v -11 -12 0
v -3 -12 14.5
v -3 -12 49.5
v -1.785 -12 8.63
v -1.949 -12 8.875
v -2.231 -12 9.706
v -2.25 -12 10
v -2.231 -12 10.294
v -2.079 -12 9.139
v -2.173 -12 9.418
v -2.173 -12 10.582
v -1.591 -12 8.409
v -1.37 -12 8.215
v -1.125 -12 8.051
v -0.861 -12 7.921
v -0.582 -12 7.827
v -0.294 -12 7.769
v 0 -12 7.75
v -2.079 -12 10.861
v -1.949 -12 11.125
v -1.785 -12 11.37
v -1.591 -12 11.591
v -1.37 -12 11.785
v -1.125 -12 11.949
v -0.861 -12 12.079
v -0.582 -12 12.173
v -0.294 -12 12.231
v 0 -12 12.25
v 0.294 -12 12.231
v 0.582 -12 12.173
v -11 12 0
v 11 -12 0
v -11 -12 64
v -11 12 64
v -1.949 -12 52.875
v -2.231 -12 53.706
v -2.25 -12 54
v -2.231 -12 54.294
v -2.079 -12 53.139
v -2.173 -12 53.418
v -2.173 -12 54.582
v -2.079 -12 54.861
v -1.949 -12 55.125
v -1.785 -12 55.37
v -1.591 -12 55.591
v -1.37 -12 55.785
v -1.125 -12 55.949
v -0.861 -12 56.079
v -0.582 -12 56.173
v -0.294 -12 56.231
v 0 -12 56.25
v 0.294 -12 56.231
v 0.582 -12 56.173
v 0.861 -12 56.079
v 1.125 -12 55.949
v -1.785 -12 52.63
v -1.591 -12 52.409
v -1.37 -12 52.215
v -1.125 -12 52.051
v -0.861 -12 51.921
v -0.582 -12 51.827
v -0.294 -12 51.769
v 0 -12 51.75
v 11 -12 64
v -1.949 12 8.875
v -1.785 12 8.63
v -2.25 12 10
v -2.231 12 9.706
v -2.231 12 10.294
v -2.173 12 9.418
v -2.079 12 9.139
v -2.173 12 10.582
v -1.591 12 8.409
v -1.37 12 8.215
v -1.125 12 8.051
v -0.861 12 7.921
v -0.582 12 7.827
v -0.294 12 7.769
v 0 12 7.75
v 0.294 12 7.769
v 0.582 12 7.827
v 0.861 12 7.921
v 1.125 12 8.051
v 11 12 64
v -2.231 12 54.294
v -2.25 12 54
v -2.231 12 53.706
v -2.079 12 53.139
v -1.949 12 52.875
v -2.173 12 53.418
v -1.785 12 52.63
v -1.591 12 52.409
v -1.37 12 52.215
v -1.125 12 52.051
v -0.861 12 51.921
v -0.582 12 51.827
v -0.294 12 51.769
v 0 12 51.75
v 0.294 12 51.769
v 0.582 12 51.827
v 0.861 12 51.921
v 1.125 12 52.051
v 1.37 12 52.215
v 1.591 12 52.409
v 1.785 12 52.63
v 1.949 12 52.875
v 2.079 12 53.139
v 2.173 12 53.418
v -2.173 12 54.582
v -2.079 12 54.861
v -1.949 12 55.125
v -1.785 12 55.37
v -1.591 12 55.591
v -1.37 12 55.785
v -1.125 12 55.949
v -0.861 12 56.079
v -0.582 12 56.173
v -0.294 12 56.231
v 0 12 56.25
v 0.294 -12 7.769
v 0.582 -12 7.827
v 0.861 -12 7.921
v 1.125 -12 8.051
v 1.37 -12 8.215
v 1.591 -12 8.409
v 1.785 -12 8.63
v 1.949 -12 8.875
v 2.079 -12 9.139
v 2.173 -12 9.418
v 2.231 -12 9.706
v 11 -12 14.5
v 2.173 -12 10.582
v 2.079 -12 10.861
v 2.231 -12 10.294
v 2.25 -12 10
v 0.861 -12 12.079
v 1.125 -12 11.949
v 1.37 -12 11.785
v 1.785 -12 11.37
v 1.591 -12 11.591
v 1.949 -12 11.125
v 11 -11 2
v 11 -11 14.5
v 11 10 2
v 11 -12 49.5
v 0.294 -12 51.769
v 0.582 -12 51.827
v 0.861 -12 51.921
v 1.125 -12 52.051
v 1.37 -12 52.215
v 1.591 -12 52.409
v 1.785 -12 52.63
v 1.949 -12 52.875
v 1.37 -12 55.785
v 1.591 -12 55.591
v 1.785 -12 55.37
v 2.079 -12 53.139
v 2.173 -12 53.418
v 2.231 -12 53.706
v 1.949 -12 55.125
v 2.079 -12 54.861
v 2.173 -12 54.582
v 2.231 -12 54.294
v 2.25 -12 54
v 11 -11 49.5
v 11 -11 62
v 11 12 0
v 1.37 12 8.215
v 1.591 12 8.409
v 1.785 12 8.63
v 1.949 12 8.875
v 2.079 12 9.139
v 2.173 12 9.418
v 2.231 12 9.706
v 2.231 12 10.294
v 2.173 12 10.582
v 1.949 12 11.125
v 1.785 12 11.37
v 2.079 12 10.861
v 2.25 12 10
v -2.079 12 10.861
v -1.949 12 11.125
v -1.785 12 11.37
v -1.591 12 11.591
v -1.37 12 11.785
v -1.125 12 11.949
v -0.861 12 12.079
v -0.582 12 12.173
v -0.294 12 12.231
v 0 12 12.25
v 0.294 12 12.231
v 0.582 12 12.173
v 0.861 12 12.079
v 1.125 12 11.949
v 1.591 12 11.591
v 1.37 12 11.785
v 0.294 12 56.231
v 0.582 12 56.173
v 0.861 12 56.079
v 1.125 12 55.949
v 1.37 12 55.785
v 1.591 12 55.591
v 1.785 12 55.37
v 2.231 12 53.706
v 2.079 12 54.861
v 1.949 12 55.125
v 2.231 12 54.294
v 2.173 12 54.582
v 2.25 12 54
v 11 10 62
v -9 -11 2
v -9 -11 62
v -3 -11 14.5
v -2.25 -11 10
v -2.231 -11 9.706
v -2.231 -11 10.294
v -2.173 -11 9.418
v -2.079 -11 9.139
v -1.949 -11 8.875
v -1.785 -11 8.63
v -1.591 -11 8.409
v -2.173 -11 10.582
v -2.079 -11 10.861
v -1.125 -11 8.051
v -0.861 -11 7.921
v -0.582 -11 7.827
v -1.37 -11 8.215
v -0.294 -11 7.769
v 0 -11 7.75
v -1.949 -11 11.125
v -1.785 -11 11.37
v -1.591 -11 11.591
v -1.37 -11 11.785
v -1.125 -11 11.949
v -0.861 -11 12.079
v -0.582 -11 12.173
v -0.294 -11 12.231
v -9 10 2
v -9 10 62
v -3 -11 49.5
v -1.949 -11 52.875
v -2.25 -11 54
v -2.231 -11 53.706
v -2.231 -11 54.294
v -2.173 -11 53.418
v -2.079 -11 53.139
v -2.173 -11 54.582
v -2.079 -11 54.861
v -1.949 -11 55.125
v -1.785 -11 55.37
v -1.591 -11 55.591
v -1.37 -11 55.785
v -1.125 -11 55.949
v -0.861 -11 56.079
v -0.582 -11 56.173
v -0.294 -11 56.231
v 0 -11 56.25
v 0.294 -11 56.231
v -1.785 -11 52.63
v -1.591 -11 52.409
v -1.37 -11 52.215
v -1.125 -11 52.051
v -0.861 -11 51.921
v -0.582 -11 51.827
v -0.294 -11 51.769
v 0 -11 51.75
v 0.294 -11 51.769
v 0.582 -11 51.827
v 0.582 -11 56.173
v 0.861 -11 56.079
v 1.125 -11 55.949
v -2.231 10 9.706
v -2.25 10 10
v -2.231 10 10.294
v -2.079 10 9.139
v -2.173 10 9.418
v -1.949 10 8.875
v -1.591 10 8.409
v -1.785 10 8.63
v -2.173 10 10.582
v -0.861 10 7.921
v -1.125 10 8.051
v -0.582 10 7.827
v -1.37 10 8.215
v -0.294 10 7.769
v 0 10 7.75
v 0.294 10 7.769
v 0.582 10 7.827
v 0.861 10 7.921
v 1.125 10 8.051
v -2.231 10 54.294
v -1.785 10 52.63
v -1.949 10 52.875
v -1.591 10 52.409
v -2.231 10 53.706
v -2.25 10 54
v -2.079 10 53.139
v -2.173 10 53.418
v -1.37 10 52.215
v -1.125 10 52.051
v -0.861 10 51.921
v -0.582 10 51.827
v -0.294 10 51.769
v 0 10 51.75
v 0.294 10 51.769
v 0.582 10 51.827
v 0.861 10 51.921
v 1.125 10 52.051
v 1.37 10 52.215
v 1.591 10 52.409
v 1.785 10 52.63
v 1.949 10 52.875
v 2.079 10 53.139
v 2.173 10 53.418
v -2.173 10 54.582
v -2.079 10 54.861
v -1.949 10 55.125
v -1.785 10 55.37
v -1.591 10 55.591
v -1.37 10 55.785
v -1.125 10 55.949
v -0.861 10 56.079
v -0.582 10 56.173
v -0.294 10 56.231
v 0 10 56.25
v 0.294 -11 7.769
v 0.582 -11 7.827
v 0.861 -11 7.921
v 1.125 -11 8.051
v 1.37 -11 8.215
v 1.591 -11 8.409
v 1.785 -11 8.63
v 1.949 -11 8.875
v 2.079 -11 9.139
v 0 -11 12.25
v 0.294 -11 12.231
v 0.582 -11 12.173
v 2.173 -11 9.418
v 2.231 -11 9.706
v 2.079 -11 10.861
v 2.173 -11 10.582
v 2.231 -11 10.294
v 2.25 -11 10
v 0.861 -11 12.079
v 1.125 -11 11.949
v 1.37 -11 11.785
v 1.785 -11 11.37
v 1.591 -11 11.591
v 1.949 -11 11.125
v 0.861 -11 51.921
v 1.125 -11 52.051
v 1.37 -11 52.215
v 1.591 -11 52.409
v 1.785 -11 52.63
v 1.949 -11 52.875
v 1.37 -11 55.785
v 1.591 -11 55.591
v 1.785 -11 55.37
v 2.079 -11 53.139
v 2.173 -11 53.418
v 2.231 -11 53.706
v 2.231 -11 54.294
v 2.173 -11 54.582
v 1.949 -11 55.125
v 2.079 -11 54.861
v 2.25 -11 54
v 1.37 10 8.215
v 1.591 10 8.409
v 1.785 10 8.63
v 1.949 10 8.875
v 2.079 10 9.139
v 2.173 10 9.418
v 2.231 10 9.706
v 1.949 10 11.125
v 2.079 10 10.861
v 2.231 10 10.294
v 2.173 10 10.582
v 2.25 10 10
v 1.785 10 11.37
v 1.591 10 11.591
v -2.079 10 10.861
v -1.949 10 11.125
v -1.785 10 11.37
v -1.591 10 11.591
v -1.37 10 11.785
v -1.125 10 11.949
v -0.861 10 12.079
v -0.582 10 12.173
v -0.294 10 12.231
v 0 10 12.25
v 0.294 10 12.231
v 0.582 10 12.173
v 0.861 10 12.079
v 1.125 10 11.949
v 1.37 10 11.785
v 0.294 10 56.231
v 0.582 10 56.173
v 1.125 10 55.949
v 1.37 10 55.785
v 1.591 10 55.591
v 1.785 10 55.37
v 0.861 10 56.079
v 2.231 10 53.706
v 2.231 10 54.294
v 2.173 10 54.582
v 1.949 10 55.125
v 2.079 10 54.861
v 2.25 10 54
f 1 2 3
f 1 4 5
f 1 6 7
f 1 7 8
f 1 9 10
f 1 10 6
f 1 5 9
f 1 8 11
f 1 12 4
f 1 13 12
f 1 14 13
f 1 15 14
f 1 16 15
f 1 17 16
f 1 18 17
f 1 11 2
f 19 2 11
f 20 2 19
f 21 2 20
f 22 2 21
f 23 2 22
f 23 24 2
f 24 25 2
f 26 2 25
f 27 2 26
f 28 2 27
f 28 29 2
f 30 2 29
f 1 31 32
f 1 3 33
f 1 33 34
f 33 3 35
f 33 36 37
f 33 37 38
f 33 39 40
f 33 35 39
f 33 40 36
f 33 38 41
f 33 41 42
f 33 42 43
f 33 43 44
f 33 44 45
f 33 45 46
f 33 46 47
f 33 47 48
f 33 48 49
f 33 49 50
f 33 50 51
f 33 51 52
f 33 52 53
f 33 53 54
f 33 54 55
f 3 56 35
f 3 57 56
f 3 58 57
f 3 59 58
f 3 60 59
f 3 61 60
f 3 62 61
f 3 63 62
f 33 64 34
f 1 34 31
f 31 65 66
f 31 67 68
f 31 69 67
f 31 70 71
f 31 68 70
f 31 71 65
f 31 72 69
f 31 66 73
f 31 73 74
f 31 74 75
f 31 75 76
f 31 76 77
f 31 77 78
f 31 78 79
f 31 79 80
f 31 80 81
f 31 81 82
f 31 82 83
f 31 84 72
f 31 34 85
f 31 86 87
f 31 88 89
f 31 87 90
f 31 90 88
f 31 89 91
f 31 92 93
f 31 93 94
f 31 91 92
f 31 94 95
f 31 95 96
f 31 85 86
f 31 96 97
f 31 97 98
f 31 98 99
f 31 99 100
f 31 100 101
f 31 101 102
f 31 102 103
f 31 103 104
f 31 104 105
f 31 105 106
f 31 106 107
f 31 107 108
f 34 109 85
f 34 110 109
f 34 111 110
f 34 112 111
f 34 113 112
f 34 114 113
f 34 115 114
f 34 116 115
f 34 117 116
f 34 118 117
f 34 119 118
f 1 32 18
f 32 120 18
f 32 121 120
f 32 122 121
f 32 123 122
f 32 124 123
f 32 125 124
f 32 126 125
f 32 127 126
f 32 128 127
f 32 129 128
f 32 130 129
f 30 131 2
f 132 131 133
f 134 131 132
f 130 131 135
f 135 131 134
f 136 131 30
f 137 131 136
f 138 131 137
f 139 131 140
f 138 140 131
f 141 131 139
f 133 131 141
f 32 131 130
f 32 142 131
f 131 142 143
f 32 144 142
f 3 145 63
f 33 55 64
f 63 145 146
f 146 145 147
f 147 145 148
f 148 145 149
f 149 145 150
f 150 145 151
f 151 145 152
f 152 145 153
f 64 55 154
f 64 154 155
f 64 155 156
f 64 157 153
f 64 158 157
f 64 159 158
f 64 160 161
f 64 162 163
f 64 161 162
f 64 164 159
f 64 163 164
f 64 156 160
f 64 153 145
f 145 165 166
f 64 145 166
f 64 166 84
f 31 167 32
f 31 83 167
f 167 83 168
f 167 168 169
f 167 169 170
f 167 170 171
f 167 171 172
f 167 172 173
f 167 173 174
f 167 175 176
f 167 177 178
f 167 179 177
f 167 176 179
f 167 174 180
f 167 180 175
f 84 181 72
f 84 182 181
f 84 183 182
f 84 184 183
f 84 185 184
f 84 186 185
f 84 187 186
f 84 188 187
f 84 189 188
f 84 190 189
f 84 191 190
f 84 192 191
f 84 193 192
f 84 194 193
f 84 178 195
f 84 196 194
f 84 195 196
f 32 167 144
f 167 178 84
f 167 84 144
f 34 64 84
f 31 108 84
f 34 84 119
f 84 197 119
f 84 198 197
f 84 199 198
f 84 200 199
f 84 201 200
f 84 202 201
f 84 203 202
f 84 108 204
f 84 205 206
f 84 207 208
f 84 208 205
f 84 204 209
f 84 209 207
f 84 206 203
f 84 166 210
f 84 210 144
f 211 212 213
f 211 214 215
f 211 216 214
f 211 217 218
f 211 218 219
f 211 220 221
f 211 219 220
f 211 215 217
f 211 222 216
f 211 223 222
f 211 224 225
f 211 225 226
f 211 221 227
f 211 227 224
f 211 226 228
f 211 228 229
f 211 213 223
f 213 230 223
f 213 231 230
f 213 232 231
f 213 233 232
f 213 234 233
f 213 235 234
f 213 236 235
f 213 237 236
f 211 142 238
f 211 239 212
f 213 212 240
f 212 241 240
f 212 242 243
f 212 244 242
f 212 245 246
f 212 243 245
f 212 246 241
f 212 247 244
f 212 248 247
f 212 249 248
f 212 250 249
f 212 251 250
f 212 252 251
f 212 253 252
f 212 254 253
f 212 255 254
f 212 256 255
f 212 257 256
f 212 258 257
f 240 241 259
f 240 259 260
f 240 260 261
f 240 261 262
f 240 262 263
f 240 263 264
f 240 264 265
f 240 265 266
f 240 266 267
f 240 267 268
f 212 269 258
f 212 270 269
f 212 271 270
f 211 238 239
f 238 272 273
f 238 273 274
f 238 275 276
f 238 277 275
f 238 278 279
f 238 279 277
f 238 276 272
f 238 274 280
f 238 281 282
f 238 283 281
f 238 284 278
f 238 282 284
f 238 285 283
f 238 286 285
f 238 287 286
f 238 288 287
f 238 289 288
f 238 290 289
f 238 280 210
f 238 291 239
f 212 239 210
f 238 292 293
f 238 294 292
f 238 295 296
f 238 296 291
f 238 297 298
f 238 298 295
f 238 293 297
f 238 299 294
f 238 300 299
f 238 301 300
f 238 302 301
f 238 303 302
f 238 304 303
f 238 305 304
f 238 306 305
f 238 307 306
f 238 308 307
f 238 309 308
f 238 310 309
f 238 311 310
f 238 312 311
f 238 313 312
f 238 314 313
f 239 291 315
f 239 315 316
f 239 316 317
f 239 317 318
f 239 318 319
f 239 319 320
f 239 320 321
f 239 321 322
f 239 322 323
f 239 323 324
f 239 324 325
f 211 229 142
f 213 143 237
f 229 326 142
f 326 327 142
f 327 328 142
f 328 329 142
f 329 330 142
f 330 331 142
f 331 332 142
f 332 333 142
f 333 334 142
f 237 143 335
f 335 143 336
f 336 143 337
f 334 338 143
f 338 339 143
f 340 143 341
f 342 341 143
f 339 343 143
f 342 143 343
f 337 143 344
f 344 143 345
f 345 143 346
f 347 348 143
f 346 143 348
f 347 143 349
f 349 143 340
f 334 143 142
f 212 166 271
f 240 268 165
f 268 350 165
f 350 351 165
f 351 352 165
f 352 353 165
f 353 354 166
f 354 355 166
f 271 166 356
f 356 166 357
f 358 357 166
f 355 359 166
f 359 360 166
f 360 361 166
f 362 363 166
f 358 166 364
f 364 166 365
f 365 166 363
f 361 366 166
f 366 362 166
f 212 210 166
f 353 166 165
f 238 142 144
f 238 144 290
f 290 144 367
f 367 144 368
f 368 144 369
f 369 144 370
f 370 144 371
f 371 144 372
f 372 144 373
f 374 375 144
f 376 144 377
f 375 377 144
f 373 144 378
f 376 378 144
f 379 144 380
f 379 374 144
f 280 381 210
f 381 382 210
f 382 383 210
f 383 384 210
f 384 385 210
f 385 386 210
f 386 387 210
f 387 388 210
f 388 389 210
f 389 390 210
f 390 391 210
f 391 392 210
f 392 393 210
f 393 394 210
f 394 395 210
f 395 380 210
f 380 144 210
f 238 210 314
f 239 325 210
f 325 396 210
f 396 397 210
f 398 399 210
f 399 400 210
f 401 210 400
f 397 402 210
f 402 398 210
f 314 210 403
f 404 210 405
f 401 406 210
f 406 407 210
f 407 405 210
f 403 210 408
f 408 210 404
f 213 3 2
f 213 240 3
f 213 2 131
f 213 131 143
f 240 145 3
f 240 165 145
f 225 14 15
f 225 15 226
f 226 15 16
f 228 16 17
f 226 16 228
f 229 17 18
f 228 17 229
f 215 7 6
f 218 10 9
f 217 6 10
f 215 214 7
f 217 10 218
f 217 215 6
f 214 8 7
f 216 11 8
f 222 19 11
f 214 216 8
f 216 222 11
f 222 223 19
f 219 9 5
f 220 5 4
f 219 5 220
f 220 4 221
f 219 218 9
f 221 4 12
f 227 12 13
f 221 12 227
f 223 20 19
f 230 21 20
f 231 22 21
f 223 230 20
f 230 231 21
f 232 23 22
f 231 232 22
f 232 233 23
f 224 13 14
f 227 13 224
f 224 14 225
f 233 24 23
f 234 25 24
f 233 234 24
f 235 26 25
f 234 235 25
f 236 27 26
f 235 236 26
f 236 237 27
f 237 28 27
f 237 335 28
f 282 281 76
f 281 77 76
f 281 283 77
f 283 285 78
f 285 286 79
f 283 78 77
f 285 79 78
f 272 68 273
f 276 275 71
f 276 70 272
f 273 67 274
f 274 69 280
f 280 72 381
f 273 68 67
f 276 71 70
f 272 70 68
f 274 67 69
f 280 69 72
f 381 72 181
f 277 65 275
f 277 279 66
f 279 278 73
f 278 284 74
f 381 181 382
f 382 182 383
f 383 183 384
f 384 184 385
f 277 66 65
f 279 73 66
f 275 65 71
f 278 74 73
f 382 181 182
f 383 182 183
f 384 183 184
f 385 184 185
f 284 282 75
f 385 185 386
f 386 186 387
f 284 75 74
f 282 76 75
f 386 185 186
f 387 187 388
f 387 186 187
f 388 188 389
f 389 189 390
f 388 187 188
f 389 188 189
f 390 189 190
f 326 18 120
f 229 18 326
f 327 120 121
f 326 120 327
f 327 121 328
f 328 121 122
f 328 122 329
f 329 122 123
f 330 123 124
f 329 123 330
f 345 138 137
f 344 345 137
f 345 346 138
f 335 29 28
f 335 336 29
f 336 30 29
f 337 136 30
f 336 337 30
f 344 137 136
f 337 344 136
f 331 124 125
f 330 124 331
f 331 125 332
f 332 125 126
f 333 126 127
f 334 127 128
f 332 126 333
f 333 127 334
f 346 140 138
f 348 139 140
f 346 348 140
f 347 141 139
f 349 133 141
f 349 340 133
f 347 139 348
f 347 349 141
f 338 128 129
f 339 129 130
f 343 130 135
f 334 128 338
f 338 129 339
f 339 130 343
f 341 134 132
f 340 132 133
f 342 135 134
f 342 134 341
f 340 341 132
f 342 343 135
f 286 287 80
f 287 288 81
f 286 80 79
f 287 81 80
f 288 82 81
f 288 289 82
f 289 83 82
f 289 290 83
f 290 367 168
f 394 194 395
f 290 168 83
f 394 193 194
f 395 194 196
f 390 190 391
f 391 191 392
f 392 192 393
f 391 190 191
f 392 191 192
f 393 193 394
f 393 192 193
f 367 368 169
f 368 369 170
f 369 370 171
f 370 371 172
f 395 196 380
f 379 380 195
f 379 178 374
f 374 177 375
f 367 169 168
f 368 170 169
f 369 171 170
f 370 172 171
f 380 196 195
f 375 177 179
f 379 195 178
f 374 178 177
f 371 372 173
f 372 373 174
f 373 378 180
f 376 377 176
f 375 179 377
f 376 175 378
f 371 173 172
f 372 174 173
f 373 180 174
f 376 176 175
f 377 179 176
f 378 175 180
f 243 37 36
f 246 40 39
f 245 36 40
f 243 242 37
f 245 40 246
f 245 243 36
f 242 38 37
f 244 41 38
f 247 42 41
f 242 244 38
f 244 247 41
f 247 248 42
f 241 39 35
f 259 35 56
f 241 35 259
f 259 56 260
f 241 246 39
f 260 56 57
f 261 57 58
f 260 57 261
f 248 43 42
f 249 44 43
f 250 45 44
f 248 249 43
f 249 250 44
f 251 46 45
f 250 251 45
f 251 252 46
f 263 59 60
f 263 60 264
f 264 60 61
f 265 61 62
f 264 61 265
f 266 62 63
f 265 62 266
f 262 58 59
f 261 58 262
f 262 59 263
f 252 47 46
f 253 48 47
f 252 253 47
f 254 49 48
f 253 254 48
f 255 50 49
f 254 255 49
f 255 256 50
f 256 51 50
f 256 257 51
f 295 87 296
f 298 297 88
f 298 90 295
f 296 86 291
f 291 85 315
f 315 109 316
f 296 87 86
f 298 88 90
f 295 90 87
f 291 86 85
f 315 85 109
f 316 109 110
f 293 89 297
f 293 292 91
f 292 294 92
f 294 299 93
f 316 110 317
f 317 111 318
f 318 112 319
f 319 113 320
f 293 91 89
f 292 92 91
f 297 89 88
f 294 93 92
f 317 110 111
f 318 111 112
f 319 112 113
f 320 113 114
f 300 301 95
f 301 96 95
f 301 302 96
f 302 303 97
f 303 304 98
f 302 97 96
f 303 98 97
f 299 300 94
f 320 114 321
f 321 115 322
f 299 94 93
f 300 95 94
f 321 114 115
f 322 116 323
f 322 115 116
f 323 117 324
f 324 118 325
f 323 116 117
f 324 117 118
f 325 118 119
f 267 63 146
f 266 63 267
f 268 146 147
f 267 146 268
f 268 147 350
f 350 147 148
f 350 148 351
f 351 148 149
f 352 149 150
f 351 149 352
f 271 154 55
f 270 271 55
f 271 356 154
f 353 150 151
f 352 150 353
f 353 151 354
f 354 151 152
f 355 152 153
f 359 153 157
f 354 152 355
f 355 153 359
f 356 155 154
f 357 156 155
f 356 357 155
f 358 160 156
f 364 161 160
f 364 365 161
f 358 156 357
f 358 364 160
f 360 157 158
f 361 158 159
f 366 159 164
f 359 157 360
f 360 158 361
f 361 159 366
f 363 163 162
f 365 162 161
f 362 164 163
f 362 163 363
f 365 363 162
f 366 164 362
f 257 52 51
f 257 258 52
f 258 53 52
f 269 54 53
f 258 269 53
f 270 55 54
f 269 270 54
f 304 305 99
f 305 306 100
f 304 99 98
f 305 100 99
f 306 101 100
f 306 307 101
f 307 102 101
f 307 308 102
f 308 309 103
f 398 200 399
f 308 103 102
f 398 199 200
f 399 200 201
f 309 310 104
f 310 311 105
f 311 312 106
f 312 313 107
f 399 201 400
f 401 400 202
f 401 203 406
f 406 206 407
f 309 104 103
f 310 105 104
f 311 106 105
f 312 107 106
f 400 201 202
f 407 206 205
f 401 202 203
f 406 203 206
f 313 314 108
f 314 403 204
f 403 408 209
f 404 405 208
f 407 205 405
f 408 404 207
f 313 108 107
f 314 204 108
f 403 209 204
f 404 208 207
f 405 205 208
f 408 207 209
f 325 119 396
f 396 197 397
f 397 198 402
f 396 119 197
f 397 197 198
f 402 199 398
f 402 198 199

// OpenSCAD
// POV 3D 盒子 — open on ONE LONG SIDE (+X), windowed asymmetric front panel
// 外形 22(X) × 24(Y) × 64(Z)
// 开口面 = +X 侧 (64×24)
// 前面(-Y) 1mm(开窗+孔) / 后面(+Y) 2mm(孔) / -X 侧 2mm / 顶·底(±Z) 2mm
// 前面板中央开穿窗口: 沿Z(64长) 35 × 沿X(22宽) 14, 居中
// 前后面板各 2 × M4(Φ4.5) 通孔, X 居中, 中心距 44 (Z=10,54)

ext_l = 22; ext_w = 24; ext_h = 64;   // X, Y, Z
wall_front = 1; wall_back = 2; wall_side = 2; wall_end = 2;
win_z = 35; win_x = 14; win_zc = ext_h/2; win_xc = 4;   // window (右移4,右缘到+X开口边)
hole_d = 4.5; hole_cc = 44;
hole_z = [ext_h/2 - hole_cc/2, ext_h/2 + hole_cc/2];   // 10, 54

cav_x0 = -ext_l/2 + wall_side;   // -9  (+X open)
cav_y0 = -ext_w/2 + wall_front;  // -11
cav_y1 =  ext_w/2 - wall_back;   //  10
cav_z0 = wall_end;               // 2
cav_z1 = ext_h - wall_end;       // 62

module box_22x24x64() {
    difference() {
        translate([-ext_l/2, -ext_w/2, 0]) cube([ext_l, ext_w, ext_h]);
        // cavity, open toward +X
        translate([cav_x0, cav_y0, cav_z0])
            cube([ext_l/2 + 1 - cav_x0, cav_y1 - cav_y0, cav_z1 - cav_z0]);
        // through window in front (-Y) panel; +X edge reaches the panel edge
        translate([win_xc - win_x/2, -ext_w/2 - 1, win_zc - win_z/2])
            cube([ext_l/2 + 1 - (win_xc - win_x/2), wall_front + 1.5, win_z]);
        // 2 × M4 through-holes along Y
        for (z = hole_z)
            translate([0, 0, z]) rotate([90, 0, 0])
                cylinder(h = ext_w + 4, d = hole_d, $fn = 48, center = true);
    }
}

box_22x24x64();
